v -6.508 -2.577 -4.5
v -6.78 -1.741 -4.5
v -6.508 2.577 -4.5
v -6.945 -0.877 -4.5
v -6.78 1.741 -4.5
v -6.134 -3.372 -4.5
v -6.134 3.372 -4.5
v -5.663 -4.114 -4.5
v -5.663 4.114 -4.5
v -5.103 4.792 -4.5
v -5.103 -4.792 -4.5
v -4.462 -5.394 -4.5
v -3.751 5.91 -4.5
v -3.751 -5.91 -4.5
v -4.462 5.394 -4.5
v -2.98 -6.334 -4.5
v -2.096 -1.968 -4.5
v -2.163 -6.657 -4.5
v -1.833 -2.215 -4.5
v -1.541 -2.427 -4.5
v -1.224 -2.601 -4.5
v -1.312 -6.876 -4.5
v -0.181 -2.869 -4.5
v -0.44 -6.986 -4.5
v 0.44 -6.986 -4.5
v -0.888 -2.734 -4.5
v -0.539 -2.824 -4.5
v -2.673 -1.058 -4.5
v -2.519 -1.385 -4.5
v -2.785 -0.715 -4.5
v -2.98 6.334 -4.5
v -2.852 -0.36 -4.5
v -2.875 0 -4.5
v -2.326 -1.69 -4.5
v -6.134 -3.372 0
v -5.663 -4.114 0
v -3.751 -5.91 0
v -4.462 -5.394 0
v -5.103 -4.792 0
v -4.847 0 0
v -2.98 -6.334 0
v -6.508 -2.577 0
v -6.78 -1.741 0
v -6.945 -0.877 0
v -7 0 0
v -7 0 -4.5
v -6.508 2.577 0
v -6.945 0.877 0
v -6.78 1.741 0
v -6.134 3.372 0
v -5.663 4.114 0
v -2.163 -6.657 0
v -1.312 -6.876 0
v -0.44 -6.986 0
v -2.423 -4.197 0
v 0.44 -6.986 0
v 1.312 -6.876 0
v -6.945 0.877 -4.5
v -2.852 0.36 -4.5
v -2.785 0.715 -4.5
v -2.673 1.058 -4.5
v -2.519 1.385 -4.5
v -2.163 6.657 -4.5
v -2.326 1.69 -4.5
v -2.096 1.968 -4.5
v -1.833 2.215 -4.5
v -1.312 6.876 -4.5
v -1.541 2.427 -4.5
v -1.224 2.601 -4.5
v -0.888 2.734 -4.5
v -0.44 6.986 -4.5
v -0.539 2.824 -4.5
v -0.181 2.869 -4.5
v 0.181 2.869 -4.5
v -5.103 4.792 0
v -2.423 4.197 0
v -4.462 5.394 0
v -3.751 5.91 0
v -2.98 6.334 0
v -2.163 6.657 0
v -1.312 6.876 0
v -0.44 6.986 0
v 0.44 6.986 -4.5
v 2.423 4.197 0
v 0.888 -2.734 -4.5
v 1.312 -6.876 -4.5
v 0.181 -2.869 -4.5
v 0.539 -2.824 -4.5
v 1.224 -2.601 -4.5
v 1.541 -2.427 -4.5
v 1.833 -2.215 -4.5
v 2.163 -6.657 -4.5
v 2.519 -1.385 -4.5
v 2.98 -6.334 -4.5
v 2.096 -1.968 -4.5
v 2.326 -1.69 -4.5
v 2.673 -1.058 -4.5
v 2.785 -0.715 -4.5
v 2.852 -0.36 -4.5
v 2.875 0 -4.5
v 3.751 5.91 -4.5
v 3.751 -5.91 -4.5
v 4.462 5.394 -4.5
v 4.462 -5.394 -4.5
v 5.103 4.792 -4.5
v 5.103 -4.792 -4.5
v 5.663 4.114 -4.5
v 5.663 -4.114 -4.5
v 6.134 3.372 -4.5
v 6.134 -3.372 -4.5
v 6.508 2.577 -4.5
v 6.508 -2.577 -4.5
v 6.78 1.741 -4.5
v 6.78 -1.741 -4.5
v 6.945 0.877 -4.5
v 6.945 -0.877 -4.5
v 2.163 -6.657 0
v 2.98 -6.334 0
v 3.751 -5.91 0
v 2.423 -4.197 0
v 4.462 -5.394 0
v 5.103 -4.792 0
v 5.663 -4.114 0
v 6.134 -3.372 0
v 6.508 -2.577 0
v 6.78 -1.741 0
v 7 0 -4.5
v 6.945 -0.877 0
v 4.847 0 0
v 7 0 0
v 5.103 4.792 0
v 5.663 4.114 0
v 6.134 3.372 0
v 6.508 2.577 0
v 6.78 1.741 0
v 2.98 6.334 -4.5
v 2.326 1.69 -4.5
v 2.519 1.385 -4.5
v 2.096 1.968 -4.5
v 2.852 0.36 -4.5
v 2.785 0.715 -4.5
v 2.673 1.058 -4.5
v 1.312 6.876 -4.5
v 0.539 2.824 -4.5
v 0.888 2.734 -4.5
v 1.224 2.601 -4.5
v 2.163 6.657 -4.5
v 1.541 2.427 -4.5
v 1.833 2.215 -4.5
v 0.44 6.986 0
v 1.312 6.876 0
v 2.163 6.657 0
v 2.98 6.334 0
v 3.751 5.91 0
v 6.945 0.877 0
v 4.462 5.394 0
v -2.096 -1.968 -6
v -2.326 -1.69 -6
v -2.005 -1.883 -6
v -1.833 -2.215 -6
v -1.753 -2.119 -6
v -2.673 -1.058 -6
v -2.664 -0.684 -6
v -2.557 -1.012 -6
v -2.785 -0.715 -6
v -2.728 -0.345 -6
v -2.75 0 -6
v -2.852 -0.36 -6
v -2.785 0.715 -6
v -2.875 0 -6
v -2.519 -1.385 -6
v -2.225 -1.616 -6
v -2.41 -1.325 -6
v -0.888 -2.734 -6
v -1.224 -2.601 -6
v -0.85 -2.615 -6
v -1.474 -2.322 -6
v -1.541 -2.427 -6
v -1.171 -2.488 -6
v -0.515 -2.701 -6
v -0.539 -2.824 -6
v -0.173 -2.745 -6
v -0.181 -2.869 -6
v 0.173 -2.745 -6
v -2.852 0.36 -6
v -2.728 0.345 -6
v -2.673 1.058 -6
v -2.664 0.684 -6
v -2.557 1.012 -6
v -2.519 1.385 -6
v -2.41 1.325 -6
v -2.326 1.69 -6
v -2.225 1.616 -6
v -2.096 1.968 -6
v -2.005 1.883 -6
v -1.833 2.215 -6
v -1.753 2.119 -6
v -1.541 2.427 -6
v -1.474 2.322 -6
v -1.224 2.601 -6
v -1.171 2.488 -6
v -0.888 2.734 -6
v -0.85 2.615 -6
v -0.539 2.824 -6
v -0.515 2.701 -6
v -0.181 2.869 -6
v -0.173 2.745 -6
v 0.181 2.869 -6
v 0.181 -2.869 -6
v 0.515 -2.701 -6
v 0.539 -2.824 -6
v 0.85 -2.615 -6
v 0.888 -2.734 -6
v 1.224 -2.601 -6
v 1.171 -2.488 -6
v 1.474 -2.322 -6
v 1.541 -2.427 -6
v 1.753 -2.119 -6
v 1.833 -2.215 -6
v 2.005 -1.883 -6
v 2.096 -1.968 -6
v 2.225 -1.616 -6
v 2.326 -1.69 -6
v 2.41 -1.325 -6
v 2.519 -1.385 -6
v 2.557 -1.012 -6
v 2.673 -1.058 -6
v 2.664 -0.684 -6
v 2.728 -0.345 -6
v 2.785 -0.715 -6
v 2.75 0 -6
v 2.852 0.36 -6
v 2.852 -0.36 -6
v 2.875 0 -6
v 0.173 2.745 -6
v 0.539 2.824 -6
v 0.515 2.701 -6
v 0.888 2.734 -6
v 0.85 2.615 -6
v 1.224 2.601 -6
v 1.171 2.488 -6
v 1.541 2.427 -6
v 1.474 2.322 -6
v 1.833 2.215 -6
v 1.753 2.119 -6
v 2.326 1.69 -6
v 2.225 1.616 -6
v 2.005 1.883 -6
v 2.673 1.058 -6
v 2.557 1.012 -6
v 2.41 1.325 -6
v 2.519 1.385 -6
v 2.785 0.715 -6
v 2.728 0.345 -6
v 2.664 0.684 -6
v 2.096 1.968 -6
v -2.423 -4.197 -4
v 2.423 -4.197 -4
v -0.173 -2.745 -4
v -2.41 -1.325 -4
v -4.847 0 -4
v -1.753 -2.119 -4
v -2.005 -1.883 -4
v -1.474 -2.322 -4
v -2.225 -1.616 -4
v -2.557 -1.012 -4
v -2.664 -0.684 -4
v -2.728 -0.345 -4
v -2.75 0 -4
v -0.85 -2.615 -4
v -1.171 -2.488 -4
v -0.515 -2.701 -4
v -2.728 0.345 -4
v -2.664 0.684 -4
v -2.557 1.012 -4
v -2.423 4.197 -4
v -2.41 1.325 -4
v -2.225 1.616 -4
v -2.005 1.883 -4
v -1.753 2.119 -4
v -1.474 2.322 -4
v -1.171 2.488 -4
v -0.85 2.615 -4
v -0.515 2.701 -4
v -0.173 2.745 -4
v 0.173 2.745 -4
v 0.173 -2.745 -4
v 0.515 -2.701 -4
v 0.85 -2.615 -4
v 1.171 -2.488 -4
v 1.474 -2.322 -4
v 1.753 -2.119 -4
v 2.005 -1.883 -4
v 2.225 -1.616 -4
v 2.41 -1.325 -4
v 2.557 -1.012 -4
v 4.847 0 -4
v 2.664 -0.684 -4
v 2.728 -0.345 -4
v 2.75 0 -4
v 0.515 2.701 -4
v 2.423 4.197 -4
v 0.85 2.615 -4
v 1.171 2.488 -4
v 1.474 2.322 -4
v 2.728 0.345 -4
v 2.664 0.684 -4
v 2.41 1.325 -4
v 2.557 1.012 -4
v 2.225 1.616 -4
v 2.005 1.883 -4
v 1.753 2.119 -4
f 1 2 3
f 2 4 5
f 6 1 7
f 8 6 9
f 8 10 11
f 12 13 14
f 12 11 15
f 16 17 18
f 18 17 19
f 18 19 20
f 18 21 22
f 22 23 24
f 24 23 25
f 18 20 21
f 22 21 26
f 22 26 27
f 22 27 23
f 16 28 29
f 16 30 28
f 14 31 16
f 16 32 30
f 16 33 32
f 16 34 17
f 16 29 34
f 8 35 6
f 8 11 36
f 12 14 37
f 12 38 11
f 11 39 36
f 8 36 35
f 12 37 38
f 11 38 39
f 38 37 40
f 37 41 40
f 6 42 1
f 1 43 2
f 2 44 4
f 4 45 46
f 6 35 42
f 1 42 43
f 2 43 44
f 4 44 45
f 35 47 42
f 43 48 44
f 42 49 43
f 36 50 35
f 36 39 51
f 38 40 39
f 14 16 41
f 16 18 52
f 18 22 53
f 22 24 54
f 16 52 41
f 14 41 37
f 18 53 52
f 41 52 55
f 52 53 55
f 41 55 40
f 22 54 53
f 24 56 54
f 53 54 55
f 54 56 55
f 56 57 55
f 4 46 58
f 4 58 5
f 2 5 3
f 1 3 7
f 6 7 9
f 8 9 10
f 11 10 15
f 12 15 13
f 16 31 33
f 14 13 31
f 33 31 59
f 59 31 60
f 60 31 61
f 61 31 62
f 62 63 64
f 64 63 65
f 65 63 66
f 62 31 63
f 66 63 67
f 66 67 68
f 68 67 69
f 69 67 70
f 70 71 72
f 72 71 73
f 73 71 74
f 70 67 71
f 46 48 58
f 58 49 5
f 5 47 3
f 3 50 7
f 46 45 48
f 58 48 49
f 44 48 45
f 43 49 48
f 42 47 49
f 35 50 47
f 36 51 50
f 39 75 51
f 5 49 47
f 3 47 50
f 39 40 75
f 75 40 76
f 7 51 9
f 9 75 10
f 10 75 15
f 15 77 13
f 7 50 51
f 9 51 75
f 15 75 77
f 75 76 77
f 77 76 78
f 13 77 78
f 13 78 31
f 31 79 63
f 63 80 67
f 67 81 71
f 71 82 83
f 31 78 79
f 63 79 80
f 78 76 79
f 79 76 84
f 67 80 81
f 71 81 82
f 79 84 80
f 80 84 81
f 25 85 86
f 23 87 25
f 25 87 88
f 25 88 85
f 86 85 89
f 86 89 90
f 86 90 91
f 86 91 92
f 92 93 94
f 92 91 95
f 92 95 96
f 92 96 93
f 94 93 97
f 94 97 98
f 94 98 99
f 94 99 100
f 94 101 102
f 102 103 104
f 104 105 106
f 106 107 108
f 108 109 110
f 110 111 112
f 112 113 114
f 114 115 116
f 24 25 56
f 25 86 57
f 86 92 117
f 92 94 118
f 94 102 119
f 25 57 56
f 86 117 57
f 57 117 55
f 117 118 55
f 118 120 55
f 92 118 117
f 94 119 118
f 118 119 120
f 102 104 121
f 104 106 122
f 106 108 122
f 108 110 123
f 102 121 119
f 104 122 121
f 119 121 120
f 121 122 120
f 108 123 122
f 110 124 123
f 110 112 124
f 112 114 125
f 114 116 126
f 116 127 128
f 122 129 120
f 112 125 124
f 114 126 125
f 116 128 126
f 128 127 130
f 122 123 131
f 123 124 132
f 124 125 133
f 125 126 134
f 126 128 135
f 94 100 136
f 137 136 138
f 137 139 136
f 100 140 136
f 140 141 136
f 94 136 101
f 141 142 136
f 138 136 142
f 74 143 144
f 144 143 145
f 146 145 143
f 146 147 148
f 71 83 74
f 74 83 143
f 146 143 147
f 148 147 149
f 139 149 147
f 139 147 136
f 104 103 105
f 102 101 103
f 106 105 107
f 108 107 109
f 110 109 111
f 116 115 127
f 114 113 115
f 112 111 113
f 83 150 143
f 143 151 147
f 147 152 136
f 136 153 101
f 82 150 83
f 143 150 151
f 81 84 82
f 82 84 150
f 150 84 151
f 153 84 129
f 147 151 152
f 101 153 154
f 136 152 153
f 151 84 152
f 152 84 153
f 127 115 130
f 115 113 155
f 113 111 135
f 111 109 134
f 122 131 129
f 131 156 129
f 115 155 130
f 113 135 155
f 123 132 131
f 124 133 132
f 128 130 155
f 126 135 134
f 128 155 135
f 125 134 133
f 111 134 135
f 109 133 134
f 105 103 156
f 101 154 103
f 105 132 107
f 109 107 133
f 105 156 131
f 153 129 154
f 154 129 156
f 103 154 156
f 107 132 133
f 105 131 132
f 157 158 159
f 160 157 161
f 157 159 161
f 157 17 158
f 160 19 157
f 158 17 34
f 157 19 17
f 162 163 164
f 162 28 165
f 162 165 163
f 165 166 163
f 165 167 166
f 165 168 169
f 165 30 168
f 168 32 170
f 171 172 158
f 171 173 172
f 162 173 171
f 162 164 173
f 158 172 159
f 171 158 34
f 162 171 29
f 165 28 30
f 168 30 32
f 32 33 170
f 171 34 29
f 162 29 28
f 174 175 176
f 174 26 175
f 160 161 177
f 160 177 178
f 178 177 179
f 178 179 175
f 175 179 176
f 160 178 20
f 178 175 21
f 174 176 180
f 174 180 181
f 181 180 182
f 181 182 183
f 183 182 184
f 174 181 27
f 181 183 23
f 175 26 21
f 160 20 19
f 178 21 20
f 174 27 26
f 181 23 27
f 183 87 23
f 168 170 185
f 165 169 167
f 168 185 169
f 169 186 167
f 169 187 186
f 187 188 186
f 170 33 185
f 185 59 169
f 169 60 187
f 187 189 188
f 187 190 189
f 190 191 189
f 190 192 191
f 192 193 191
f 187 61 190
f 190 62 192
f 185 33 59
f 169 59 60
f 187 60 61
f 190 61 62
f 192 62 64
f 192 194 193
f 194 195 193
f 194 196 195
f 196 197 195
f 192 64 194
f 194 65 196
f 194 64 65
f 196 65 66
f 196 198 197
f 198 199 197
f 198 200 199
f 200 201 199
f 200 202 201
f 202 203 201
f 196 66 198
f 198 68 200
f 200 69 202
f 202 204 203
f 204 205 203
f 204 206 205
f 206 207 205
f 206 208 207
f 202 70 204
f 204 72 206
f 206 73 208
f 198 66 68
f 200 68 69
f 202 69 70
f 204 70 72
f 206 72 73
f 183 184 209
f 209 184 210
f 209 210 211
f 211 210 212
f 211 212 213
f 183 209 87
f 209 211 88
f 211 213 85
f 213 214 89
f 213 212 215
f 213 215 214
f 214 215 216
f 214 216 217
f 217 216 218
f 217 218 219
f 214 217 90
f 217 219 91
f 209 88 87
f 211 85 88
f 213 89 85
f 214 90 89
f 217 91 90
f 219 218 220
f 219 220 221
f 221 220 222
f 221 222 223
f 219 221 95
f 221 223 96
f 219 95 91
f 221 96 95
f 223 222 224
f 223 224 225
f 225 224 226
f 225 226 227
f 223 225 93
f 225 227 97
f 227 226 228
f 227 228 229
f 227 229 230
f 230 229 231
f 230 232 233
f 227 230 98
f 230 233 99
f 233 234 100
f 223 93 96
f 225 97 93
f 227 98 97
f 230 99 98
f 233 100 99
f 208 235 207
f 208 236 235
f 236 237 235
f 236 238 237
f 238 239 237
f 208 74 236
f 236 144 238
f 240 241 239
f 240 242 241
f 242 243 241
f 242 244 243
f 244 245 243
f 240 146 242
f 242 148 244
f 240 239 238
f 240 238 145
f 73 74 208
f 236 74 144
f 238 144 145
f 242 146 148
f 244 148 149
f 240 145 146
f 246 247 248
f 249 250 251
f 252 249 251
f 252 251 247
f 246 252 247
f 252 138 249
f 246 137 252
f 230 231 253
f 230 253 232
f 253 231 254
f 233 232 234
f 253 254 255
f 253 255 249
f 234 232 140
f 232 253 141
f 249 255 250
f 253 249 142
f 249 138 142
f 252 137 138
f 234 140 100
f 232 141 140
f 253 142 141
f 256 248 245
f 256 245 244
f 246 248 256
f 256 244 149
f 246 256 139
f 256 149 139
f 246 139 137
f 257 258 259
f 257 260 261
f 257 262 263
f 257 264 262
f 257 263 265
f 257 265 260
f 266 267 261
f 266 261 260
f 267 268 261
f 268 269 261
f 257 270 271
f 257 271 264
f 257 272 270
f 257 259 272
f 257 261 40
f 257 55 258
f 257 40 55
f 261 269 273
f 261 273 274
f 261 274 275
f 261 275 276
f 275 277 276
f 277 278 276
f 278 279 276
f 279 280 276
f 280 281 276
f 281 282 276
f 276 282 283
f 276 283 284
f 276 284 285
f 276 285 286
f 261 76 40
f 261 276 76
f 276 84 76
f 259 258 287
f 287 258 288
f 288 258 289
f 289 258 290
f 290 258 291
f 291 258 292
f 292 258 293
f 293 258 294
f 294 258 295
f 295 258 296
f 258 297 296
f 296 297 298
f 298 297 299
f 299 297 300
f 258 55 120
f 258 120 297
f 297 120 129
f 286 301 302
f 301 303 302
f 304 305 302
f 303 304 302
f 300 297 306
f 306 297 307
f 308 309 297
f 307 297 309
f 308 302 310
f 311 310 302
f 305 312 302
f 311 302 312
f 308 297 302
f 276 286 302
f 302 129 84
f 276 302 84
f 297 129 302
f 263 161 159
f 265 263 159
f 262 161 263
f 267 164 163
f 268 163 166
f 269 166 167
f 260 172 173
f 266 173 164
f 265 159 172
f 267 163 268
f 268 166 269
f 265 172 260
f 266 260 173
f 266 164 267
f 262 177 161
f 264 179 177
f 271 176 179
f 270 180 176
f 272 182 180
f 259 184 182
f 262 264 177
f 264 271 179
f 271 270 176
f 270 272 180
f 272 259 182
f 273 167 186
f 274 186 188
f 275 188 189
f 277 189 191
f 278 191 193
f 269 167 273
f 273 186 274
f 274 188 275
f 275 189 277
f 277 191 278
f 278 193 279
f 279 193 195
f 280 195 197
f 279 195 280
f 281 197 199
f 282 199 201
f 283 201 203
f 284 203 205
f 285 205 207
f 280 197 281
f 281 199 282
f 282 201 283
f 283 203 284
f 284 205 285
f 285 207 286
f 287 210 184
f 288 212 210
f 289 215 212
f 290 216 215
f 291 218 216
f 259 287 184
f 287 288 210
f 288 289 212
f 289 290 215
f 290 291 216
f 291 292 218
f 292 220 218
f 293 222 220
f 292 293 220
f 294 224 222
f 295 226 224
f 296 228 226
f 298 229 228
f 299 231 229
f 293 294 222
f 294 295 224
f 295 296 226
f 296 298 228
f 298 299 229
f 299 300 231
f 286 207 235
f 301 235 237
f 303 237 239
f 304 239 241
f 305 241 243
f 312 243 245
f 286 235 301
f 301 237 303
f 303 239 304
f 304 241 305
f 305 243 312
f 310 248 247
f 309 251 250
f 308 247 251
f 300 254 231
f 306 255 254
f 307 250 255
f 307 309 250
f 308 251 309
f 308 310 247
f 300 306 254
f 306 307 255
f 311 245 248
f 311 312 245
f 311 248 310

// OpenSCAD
$fn = 50;


difference() {
	union() {
		translate(v = [0, 0, -4.5000000000]) {
			cylinder(h = 4.5000000000, r = 7.0000000000);
		}
		#translate(v = [0, 0, -6.0000000000]) {
			cylinder(h = 6, r = 2.8750000000);
		}
	}
	union() {
		translate(v = [0, 0, 0]) {
			rotate(a = [0, 0, 0]) {
				difference() {
					union() {
						translate(v = [0, 0, -4]) {
							linear_extrude(height = 4) {
								polygon(points = [[4.8468000000, 0.0000000000], [2.4234000000, 4.1974519271], [-2.4234000000, 4.1974519271], [-4.8468000000, 0.0000000000], [-2.4234000000, -4.1974519271], [2.4234000000, -4.1974519271]]);
							}
						}
					}
					union();
				}
			}
		}
		#translate(v = [0, 0, -100.0000000000]) {
			cylinder(h = 200, r = 2.7500000000);
		}
	}
}
